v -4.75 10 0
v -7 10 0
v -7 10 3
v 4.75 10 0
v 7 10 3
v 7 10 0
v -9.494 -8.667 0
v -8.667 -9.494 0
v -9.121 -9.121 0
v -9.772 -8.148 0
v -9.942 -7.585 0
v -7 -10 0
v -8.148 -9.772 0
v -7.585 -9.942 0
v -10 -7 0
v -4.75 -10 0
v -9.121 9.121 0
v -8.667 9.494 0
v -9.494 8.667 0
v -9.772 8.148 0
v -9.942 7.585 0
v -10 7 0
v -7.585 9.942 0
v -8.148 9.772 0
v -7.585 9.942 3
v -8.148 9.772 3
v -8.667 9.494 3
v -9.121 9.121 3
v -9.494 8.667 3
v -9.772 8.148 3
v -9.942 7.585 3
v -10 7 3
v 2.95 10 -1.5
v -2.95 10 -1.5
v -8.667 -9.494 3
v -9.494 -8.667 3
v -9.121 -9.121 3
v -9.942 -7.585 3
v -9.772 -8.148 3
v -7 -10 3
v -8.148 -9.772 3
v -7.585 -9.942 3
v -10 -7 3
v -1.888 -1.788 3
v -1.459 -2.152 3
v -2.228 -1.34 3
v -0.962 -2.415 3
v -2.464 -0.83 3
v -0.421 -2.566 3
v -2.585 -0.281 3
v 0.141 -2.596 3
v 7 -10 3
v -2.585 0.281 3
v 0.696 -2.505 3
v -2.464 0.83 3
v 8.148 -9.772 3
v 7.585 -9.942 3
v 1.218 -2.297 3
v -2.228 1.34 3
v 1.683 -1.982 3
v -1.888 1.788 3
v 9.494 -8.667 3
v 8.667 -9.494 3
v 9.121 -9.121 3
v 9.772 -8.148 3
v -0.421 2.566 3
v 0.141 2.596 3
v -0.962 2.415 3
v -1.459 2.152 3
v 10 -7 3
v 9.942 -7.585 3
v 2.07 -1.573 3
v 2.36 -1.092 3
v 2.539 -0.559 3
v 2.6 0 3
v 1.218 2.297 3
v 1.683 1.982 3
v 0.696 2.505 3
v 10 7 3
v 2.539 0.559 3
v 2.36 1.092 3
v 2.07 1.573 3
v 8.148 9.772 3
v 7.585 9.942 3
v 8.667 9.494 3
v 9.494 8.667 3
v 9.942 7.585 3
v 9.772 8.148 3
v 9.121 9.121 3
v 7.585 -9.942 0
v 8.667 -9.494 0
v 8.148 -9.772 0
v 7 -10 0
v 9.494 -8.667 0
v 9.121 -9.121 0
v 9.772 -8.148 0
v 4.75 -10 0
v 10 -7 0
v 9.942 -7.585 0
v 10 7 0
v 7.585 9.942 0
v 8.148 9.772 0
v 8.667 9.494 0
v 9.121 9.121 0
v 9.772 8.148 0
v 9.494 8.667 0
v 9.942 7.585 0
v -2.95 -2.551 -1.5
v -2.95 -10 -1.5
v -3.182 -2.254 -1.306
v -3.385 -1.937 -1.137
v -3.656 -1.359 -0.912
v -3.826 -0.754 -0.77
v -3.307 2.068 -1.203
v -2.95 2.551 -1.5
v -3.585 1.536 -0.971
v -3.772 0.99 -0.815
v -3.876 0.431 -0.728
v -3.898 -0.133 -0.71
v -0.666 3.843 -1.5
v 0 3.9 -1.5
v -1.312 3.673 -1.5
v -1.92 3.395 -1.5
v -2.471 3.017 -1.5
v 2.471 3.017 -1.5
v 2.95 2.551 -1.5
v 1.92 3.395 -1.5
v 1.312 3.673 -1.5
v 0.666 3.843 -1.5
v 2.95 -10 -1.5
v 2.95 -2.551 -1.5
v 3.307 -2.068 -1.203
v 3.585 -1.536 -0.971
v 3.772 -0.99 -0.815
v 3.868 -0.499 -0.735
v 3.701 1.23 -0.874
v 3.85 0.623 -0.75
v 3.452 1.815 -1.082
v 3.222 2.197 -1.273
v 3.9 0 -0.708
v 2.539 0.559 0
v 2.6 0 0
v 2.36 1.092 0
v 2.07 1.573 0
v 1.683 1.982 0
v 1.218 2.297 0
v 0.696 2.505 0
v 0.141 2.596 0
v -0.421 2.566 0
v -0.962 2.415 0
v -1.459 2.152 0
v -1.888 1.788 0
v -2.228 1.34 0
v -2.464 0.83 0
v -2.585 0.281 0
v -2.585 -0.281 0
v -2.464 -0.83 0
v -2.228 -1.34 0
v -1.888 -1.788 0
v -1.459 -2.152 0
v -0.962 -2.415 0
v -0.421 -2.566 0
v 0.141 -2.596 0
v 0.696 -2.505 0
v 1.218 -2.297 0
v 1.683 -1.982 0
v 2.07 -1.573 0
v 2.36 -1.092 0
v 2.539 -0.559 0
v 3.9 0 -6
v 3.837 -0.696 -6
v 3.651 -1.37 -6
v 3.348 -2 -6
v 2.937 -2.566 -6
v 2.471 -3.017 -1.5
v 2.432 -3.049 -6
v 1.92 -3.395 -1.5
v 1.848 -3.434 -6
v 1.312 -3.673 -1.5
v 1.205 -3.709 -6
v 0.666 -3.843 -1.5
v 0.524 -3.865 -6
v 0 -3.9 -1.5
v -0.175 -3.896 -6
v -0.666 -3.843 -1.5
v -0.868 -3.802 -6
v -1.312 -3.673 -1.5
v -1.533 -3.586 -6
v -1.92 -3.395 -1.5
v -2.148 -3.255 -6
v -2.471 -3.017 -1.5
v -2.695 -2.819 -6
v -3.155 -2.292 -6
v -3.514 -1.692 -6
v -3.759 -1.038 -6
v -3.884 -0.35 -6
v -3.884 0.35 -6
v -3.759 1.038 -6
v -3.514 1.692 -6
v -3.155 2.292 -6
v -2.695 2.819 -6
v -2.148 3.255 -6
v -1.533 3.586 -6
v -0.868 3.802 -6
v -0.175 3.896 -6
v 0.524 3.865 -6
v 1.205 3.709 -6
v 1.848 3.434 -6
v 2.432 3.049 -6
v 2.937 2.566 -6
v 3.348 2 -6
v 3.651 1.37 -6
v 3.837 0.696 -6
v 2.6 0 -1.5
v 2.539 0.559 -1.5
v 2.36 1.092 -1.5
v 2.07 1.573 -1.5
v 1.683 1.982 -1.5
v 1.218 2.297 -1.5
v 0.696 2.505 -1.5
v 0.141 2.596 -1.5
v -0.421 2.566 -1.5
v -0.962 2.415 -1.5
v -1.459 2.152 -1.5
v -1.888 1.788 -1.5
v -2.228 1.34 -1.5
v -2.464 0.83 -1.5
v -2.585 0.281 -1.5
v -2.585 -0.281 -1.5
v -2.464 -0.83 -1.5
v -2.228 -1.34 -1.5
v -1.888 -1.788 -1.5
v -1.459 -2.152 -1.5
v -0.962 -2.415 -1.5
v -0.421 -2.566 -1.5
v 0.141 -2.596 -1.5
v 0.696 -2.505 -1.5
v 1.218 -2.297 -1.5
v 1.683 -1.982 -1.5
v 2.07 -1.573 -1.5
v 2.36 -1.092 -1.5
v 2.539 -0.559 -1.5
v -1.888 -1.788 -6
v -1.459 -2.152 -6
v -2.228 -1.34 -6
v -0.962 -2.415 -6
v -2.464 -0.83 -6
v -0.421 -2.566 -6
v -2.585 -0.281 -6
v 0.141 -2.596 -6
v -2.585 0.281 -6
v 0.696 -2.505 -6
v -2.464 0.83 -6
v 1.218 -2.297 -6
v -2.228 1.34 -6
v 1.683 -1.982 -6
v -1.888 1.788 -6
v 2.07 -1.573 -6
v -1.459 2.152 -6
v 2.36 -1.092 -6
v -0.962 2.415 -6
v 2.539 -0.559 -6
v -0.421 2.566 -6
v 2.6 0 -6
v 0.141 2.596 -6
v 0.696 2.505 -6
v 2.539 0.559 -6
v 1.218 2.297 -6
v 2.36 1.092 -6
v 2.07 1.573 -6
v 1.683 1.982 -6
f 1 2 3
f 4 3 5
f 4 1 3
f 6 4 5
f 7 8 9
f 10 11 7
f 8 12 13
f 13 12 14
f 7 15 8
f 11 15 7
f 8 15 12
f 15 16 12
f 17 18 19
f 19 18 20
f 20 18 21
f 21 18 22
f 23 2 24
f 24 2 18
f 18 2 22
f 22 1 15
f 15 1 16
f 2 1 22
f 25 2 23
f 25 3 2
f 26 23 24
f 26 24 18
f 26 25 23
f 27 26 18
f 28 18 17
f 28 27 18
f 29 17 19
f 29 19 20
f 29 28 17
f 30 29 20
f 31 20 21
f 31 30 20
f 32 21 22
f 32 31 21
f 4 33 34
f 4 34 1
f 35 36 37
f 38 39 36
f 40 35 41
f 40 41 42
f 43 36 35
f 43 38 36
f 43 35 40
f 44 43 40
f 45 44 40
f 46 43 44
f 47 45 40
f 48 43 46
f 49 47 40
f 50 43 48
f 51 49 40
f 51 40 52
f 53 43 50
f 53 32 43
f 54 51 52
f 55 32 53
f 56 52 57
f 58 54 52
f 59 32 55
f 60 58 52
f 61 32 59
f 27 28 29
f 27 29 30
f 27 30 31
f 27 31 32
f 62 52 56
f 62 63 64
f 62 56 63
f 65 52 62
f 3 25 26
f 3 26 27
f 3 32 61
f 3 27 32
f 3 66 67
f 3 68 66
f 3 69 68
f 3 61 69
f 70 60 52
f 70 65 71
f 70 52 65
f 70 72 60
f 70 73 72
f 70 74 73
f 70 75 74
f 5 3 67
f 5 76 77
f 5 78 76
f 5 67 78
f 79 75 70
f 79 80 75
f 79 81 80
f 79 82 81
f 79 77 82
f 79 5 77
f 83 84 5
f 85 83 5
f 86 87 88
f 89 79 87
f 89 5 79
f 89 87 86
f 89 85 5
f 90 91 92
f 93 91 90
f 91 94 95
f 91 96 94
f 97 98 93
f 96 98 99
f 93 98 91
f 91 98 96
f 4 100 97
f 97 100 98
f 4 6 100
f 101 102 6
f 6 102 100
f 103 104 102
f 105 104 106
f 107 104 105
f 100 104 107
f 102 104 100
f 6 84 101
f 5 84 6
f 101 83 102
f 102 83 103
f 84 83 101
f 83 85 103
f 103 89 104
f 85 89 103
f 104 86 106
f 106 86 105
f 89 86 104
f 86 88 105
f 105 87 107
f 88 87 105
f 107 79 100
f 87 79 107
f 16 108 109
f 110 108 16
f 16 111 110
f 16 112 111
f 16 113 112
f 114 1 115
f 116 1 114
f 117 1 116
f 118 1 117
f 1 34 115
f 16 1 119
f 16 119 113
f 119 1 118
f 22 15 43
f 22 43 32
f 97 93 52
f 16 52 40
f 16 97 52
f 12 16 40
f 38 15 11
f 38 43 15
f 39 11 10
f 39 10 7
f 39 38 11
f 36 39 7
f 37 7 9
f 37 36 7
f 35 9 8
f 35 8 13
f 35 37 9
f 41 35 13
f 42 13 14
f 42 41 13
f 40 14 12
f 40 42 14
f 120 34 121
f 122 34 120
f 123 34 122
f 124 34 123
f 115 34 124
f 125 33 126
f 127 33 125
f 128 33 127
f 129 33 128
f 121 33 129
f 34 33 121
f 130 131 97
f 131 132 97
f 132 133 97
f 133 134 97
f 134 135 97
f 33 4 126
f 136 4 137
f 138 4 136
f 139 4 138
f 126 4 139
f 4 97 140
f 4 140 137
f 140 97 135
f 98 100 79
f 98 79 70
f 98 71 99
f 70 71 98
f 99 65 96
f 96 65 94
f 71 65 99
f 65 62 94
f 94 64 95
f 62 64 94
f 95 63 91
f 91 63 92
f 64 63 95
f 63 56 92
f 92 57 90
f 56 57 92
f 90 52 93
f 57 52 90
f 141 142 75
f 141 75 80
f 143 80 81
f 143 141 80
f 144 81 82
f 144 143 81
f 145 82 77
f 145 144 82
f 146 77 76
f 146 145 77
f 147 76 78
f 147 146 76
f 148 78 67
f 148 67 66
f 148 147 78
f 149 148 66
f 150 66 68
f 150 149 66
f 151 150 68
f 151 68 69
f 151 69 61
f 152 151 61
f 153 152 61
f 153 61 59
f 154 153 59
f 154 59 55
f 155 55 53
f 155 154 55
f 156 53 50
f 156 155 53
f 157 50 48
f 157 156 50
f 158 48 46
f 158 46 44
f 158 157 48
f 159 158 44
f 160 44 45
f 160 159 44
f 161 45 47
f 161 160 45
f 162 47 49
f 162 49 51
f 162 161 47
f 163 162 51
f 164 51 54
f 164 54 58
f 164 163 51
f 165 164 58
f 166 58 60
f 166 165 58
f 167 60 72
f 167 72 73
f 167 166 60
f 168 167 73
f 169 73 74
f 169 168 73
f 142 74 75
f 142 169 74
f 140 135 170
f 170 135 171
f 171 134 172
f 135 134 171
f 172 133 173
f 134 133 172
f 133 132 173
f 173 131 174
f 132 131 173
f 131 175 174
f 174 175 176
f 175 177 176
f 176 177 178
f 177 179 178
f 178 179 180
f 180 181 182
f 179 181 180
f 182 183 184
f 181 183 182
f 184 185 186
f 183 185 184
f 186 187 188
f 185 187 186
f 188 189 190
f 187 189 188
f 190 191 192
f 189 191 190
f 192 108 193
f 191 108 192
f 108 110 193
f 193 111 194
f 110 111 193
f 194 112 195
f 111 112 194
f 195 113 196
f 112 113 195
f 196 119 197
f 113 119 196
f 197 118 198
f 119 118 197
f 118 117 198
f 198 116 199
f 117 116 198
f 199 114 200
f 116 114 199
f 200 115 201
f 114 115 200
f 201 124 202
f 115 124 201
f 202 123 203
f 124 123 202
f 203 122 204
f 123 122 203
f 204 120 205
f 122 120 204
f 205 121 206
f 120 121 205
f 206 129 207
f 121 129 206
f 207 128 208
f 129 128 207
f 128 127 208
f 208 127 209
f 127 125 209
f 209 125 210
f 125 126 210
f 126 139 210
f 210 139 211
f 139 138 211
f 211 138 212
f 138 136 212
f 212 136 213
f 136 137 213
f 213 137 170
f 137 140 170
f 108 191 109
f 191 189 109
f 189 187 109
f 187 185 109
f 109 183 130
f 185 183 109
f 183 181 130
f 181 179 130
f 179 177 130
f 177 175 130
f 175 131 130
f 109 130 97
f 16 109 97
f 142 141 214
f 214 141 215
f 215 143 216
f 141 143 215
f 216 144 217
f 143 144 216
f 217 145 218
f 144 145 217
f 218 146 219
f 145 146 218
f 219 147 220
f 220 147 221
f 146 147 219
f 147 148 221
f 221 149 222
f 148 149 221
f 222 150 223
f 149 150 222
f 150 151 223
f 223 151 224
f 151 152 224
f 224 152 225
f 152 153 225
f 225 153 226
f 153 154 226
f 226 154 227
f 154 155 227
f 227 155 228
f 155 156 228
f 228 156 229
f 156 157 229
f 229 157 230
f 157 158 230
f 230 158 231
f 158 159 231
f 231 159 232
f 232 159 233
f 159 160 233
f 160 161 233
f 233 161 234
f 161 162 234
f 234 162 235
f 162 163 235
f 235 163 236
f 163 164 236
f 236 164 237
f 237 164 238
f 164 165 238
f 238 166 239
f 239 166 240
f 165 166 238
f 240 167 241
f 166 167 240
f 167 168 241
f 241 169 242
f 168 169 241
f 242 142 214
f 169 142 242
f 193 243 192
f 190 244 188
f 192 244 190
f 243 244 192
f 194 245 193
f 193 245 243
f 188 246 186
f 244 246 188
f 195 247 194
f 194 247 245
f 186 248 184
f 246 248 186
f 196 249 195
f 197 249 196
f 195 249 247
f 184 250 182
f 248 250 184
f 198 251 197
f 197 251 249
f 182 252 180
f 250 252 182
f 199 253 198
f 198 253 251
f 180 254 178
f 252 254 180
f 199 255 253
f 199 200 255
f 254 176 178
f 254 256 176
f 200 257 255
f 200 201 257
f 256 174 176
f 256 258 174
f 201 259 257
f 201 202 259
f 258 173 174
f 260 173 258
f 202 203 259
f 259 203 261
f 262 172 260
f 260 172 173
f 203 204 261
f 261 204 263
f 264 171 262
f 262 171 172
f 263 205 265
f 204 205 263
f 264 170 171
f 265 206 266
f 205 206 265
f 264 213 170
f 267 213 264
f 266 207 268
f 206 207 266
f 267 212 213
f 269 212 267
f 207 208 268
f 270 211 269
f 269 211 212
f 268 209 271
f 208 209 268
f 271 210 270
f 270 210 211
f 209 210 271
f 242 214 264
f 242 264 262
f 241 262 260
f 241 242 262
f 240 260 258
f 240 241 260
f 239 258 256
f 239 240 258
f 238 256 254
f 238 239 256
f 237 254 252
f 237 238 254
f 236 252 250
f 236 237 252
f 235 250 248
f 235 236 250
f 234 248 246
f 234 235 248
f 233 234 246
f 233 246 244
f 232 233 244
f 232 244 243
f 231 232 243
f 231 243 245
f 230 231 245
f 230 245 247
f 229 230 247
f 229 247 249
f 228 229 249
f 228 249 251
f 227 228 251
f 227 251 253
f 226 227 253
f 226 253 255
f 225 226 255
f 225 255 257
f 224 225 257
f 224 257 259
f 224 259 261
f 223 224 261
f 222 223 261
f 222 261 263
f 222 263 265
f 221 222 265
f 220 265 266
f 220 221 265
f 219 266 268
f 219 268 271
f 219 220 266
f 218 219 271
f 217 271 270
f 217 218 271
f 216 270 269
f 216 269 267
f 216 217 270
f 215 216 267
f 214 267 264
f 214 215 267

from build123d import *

# Parameters (mm, degrees)
SKETCH_W        = 20
SKETCH_H        = 20
SKETCH_R        = 2.6
PAD_DEPTH       = 3
SKETCH001_R     = 3.9
SKETCH001_R_2   = 2.6
PAD001_DEPTH    = 6
PAD002_DEPTH    = 20
PAD002_FACE16_R = 2.6
POCKET_DEPTH    = 6.001
FILLET_R        = 3


with BuildPart() as part:
    # Sketch → Pad (new body)
    with BuildSketch(Plane.XY):
        Rectangle(SKETCH_W, SKETCH_H)
        Circle(SKETCH_R, mode=Mode.SUBTRACT)
    extrude(amount=PAD_DEPTH)

    # Sketch001 (on Face6 of Pad) → Pad001 (join)
    with BuildSketch(Plane(origin=(0, 0, 0), x_dir=(1, 0, 0), z_dir=(0, 0, -1))):
        Circle(SKETCH001_R)
        Circle(SKETCH001_R_2, mode=Mode.SUBTRACT)
    extrude(amount=PAD001_DEPTH)

    # Sketch002 (on Face1 of Pad001) → Pad002 (join)
    with BuildSketch(Plane(origin=(0, 10, 0), x_dir=(-1, 0, 0), z_dir=(0, 1, 0))):
        Polygon((-4.75, 0), (4.75, 0), (2.95, -1.5), (-2.95, -1.5), align=None)
    extrude(amount=-PAD002_DEPTH)

    # Pad002 Face16 → Pocket (cut, through all)
    with BuildSketch(Plane(origin=(0, 0, 0), x_dir=(0, 1, 0), z_dir=(0, 0, 1))):
        Circle(PAD002_FACE16_R)
    extrude(amount=-POCKET_DEPTH, mode=Mode.SUBTRACT)

    # Fillet
    fillet_edges = [part.edges().sort_by_distance(p)[0] for p in [
        (10, -10, 1.5),
        (-10, -10, 1.5),
        (10, 10, 1.5),
        (-10, 10, 1.5),
    ]]
    fillet(fillet_edges, radius=FILLET_R)


solid = part.part
